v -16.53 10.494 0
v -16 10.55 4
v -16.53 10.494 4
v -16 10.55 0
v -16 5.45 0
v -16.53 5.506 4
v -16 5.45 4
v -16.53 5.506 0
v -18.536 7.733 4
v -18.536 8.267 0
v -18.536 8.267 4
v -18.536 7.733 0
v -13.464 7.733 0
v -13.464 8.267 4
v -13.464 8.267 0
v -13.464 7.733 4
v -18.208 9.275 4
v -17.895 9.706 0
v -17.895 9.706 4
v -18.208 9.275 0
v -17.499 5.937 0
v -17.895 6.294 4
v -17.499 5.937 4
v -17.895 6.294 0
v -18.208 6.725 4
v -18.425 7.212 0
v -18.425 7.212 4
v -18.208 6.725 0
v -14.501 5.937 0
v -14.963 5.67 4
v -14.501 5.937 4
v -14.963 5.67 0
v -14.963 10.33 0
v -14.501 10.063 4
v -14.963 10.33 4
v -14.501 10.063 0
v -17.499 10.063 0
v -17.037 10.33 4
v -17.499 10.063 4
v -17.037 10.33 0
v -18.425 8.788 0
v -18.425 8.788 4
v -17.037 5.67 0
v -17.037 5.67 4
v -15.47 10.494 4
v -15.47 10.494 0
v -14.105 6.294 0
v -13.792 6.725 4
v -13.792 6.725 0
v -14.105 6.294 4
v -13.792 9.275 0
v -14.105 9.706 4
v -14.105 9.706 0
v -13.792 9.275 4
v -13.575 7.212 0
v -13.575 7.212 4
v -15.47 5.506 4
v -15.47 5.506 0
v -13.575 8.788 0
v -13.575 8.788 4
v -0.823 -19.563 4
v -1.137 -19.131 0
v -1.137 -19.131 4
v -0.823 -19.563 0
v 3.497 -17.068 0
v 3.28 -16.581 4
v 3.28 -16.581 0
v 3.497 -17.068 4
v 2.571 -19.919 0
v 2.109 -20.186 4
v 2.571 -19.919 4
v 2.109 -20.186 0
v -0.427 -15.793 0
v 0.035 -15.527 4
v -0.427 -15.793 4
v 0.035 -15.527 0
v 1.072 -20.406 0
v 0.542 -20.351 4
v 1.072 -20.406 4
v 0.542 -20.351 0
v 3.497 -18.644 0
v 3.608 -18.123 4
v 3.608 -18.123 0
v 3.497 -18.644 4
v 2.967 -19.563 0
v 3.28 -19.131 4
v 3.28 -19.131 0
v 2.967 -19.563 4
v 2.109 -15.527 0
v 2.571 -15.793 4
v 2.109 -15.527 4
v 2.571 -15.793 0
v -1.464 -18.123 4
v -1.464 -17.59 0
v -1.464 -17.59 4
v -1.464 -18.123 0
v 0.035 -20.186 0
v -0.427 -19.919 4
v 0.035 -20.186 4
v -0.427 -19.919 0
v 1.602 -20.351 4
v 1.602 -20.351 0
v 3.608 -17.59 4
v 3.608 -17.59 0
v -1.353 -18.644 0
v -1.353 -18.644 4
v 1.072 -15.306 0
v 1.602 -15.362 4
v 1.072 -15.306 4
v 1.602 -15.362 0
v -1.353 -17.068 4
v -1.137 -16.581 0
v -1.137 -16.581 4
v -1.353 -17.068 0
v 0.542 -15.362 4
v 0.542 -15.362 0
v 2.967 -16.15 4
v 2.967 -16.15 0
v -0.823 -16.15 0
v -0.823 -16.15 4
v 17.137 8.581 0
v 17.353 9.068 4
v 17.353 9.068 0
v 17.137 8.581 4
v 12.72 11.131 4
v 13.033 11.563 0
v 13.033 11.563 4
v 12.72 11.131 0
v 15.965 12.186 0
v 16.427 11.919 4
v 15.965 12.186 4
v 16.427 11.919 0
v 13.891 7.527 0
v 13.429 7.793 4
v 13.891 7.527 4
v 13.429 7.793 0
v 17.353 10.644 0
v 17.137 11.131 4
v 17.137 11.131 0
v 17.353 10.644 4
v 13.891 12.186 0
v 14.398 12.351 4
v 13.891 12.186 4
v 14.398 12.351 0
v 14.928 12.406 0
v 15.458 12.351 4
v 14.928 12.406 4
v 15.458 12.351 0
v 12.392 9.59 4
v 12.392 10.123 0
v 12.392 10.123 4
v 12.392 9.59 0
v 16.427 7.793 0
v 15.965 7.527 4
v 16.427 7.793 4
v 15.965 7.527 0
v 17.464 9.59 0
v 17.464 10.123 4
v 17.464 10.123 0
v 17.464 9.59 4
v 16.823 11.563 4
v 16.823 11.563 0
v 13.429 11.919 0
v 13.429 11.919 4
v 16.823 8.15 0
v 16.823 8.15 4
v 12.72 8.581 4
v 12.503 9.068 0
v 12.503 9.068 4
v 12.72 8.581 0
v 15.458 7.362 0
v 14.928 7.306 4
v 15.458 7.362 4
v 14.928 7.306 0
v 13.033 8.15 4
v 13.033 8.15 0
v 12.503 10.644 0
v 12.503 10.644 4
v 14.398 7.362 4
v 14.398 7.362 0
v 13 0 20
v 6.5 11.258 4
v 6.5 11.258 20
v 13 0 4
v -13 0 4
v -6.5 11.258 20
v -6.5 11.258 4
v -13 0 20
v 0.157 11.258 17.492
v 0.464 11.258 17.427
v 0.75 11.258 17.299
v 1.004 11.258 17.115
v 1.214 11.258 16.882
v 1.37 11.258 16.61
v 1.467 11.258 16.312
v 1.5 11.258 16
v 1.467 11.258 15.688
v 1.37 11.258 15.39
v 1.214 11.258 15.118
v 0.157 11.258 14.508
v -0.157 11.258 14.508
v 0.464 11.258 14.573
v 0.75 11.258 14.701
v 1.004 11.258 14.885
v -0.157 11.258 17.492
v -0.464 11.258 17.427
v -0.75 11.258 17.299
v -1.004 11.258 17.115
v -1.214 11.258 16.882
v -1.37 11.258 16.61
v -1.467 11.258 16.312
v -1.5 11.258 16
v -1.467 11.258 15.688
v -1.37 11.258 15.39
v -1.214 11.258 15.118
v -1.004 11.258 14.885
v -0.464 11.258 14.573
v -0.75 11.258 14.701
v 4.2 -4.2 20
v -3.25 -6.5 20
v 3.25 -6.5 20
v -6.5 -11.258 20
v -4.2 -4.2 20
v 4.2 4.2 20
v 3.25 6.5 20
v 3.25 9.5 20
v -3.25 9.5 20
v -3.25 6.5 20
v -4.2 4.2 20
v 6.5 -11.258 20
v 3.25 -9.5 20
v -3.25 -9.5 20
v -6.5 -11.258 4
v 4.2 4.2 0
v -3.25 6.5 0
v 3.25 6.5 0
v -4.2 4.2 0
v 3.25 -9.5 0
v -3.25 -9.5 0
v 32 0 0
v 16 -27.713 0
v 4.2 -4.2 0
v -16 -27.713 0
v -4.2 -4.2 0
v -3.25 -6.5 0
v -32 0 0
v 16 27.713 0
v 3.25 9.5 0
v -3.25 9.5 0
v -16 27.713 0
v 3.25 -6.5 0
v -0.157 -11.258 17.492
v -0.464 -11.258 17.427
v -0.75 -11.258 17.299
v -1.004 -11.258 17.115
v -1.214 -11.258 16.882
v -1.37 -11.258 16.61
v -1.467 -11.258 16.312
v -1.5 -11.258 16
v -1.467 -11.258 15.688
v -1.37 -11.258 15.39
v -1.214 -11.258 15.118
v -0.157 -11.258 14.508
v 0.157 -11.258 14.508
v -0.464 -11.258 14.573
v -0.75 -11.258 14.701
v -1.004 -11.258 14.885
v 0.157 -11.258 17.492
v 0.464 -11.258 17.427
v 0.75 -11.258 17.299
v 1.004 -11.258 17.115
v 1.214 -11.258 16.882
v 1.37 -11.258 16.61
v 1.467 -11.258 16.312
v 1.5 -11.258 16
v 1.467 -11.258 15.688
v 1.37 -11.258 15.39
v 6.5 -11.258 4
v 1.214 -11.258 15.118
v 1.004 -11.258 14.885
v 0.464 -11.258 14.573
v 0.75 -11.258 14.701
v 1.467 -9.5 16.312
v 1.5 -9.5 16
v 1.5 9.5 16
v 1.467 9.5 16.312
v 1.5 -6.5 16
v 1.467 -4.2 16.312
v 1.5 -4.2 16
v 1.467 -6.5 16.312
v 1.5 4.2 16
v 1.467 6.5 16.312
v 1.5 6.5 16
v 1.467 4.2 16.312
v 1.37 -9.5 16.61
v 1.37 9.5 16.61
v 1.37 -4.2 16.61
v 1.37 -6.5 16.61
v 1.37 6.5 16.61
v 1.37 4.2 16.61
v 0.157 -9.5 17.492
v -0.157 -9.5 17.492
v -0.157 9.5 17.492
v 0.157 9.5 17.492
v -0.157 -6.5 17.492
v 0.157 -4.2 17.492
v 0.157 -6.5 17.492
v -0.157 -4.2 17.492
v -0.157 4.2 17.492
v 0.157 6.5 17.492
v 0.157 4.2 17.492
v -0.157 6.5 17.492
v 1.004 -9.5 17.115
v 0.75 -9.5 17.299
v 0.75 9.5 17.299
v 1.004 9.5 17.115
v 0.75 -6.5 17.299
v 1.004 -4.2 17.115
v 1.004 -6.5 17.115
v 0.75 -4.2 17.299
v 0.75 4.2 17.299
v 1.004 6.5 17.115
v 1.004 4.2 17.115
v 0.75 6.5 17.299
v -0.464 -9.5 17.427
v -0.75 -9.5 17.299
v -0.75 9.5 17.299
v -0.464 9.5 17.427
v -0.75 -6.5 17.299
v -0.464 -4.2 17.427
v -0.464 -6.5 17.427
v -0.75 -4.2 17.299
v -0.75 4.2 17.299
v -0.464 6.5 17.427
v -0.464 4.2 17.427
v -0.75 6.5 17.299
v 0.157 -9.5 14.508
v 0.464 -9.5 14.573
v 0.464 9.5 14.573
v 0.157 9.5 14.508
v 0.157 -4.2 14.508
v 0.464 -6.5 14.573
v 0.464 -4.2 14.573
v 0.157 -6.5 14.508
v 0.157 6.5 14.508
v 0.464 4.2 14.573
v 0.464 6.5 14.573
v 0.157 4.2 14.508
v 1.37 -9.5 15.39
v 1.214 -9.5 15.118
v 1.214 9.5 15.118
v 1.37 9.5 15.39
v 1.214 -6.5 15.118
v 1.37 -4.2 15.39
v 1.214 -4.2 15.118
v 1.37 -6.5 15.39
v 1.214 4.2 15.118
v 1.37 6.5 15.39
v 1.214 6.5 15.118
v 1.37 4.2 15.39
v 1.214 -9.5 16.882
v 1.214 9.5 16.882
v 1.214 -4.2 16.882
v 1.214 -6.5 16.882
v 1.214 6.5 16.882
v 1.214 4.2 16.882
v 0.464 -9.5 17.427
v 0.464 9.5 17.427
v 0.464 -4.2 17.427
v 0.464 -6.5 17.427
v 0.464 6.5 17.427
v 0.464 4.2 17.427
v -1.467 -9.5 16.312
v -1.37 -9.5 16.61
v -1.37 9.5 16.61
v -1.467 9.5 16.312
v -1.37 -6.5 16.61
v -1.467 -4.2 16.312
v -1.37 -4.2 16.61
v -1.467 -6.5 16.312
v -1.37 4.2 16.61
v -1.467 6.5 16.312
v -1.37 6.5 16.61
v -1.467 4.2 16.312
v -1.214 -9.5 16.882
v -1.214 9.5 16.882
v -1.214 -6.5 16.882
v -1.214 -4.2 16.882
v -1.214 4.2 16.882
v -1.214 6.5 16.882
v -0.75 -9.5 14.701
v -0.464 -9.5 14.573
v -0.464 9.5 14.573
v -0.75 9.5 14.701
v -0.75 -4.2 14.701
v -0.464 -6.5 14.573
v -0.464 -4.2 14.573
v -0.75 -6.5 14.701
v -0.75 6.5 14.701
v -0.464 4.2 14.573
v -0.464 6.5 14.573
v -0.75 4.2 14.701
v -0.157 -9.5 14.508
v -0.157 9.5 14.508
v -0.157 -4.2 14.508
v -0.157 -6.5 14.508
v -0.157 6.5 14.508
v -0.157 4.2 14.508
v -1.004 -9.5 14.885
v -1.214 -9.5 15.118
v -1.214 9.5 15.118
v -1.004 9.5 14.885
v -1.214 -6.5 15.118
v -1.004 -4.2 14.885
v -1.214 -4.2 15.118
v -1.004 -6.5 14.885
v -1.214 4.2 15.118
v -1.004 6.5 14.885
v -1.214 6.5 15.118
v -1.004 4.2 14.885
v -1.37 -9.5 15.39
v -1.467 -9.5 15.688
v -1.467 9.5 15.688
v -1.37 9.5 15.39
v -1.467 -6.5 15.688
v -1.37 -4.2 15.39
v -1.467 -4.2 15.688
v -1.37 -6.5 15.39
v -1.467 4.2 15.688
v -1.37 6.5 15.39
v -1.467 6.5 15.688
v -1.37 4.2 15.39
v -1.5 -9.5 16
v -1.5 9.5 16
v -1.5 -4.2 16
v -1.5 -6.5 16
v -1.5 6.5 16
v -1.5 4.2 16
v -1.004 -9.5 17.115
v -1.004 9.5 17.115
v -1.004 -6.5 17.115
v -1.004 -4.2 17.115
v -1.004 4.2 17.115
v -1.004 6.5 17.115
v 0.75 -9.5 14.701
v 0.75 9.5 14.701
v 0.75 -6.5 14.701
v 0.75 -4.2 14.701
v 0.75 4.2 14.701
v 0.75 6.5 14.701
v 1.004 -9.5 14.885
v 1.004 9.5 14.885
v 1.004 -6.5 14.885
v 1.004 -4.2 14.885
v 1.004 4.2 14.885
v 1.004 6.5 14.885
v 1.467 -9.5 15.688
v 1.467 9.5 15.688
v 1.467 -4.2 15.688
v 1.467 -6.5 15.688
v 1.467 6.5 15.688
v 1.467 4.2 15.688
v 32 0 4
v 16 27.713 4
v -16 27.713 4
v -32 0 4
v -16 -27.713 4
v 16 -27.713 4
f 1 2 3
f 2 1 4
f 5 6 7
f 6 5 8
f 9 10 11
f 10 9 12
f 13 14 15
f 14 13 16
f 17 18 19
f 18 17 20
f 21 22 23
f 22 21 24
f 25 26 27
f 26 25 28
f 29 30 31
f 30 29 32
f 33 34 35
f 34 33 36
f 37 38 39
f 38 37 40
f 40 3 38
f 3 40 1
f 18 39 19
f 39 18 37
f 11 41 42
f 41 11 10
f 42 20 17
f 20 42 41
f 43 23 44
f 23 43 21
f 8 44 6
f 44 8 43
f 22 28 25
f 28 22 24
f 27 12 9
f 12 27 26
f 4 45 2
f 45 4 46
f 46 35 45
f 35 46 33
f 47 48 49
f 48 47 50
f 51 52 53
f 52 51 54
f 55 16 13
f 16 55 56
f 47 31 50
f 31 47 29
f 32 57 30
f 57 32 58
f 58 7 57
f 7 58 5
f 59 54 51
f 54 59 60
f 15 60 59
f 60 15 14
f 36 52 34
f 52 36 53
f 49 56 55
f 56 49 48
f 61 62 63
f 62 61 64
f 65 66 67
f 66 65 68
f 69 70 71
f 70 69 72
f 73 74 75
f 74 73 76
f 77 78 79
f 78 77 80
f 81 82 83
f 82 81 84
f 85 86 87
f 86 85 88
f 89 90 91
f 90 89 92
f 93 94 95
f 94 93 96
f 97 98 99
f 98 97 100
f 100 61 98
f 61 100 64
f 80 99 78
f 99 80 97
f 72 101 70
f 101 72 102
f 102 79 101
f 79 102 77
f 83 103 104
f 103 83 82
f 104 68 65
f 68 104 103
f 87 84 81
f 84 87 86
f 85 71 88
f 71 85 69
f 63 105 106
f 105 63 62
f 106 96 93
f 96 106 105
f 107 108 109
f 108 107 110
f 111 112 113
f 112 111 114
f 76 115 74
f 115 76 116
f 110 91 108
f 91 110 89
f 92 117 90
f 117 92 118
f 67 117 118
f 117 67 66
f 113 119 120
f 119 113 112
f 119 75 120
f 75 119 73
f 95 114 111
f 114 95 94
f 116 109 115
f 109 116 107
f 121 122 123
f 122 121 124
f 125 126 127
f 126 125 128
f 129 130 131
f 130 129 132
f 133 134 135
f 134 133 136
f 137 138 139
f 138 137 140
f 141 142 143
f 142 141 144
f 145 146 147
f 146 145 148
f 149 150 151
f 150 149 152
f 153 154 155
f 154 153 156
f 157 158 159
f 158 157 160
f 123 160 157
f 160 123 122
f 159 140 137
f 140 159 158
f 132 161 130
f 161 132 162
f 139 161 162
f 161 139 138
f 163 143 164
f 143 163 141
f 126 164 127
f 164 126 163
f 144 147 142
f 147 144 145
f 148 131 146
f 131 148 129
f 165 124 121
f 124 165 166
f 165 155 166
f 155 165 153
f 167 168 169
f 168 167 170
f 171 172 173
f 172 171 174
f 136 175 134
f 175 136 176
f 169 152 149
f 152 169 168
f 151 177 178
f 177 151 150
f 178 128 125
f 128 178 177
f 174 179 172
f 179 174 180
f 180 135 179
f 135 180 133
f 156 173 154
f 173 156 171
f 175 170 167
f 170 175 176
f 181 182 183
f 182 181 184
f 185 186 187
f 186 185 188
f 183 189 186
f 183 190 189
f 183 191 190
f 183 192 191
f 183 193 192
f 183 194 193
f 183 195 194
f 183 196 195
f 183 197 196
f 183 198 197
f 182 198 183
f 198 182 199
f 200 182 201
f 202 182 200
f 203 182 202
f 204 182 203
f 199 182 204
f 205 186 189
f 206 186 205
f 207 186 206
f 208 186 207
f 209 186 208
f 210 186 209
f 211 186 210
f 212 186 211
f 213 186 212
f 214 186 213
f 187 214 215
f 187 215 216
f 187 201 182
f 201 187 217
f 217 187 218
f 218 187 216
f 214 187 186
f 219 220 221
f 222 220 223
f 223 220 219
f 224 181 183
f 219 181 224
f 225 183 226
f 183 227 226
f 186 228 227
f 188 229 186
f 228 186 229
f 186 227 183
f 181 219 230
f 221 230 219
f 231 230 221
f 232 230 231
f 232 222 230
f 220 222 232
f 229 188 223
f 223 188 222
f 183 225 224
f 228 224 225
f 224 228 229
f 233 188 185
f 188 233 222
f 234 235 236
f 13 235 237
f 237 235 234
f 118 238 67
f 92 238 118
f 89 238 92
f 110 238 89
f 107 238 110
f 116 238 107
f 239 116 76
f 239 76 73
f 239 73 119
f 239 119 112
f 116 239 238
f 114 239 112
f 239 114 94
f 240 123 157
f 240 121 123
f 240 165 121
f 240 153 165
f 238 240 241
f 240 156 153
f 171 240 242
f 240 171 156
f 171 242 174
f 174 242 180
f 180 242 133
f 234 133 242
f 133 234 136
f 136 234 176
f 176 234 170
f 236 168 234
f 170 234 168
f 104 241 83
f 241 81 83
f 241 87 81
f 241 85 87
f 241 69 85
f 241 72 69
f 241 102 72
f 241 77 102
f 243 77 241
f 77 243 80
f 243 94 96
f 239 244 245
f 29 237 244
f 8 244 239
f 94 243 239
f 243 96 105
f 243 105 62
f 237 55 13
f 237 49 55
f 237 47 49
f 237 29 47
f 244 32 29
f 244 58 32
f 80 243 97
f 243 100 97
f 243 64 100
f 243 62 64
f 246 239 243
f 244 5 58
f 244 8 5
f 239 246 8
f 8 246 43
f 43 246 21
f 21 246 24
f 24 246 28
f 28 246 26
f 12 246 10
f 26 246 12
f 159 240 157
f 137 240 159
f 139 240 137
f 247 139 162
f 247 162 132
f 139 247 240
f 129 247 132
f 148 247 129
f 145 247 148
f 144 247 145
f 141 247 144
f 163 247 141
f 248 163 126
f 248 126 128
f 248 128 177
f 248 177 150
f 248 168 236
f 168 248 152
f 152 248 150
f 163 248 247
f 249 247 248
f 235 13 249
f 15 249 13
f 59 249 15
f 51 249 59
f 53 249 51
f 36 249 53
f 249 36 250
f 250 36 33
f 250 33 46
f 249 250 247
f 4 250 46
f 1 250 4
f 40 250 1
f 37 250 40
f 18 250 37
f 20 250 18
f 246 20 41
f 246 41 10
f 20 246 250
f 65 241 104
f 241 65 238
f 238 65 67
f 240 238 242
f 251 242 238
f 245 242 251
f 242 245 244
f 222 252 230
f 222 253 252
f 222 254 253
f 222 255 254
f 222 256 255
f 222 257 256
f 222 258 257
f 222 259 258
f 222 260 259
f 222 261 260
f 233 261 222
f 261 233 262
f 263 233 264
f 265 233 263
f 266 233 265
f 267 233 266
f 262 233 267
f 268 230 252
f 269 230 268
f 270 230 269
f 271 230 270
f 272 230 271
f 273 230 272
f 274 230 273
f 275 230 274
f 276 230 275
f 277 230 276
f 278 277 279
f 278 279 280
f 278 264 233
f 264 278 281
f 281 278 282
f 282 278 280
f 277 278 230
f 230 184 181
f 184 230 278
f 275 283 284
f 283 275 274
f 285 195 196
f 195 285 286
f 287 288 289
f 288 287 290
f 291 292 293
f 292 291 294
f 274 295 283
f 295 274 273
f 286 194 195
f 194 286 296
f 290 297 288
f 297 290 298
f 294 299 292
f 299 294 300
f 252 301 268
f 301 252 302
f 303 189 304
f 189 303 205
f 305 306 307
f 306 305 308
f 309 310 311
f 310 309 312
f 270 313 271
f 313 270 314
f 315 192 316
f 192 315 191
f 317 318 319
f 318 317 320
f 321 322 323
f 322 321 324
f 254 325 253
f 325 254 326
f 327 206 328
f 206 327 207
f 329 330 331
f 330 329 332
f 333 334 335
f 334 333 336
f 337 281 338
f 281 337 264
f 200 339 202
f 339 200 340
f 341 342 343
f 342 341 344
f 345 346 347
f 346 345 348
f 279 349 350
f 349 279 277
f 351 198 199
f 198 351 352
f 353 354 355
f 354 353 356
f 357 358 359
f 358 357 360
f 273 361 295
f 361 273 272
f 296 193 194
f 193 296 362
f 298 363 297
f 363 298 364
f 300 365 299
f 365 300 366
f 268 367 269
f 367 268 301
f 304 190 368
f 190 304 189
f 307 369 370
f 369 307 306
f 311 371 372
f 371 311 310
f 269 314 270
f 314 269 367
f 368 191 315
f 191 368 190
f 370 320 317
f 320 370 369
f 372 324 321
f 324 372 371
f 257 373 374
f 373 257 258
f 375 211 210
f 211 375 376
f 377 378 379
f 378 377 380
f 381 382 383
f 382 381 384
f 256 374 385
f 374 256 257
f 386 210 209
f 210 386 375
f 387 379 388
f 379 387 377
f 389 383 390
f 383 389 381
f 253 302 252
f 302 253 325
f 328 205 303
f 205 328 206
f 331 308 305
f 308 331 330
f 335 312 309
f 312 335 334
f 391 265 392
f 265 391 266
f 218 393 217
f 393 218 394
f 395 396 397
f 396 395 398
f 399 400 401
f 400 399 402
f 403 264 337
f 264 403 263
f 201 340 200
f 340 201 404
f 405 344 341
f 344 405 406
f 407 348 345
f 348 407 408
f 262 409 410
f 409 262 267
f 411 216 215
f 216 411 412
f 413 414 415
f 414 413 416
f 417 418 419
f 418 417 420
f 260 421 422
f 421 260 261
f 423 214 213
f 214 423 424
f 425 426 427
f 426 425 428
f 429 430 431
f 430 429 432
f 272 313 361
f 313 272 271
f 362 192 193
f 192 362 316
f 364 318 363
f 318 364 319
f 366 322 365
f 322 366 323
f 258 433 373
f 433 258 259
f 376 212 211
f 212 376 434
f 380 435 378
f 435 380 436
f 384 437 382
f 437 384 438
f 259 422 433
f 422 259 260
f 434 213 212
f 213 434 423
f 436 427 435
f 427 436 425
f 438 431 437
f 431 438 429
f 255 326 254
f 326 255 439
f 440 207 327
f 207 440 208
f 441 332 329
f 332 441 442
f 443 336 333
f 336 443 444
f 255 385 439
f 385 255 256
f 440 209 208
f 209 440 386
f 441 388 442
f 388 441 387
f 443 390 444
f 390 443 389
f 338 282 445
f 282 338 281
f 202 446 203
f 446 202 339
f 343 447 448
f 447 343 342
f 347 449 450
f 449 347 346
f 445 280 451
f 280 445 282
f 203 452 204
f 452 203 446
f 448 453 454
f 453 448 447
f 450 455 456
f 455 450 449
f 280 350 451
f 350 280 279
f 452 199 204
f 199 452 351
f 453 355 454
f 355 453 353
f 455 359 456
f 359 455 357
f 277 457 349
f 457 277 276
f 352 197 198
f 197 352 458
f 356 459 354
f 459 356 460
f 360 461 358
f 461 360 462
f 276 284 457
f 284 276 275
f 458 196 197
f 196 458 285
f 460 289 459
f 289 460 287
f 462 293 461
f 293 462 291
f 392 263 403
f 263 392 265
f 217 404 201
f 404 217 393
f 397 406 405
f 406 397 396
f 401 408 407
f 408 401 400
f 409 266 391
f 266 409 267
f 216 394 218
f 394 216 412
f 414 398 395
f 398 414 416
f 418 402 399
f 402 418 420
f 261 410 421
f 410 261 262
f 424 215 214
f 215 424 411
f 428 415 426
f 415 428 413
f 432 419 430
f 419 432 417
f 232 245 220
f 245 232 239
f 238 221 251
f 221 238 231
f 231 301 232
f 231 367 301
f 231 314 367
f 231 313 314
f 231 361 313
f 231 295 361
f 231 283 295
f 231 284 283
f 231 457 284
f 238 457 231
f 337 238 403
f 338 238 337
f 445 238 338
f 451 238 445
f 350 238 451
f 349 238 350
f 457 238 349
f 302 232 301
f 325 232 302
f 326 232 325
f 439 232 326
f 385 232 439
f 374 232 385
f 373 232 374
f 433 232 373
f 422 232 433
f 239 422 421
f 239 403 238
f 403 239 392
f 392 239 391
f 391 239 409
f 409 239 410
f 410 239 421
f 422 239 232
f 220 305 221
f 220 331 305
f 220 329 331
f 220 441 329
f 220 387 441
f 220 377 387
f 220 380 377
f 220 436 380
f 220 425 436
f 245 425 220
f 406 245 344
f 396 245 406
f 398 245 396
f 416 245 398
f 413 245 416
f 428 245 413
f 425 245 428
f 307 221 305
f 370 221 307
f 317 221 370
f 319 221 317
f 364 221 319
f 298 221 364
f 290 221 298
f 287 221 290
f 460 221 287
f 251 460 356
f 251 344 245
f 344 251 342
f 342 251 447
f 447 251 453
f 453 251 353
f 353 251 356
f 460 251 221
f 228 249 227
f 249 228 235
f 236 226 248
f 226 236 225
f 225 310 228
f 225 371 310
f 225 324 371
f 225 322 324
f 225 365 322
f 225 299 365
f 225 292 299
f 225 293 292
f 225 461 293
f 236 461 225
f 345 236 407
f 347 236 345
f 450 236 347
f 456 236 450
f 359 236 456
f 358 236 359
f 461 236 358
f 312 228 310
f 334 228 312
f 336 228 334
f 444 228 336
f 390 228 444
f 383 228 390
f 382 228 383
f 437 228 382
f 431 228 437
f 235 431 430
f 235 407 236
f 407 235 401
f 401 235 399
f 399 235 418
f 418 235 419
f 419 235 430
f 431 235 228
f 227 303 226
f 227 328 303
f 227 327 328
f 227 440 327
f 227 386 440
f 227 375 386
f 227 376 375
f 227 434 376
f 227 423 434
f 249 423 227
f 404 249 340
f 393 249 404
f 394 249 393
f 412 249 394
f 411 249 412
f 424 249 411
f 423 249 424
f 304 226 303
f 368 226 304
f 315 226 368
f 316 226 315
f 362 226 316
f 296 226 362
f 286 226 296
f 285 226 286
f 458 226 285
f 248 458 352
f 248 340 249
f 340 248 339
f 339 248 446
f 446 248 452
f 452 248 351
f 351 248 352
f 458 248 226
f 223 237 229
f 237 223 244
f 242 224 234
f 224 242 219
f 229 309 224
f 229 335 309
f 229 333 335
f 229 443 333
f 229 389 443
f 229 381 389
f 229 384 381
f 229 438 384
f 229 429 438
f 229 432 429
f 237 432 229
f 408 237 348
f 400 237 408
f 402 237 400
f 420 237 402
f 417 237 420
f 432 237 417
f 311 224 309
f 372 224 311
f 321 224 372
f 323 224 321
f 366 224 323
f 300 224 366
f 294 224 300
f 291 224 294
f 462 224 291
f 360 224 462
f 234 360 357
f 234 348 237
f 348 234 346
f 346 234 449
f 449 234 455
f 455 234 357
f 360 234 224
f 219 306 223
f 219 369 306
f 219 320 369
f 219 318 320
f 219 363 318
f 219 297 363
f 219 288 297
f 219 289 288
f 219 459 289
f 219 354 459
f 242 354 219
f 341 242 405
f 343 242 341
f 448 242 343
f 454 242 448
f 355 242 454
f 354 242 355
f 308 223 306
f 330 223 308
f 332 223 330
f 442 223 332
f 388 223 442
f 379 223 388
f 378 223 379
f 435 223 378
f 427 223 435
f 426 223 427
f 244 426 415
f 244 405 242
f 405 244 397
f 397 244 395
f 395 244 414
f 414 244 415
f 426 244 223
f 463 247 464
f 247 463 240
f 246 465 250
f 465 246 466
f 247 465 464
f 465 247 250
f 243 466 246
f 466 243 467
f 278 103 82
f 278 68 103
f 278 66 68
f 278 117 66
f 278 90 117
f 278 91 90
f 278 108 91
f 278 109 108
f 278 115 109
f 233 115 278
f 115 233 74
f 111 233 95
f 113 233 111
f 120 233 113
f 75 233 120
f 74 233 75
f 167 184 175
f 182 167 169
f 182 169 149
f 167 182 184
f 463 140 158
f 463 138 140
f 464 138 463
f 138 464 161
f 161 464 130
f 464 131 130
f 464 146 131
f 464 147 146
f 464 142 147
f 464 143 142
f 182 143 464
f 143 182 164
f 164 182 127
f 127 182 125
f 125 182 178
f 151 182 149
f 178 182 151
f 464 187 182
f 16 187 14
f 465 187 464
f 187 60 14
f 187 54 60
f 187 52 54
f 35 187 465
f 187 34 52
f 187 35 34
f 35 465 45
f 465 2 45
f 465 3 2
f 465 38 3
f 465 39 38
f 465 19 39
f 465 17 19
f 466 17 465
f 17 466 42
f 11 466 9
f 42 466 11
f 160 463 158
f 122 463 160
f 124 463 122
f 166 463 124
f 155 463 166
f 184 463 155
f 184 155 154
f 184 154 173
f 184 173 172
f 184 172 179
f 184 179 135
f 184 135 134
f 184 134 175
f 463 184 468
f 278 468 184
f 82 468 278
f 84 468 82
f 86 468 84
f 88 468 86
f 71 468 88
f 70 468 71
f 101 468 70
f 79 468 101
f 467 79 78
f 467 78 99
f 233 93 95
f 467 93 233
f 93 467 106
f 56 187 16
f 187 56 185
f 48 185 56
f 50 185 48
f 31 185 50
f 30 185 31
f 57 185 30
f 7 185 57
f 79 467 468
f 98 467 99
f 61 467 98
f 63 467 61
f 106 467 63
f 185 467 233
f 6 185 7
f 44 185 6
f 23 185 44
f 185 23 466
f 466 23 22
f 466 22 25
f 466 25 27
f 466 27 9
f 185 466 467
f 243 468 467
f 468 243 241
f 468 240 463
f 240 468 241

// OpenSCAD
beam_width    = 8;
hole_diameter = 5.1;
hole_radius   = hole_diameter / 2;

plate_radius = beam_width * 4;
distance_of_edge_from_center = sqrt(pow(plate_radius,2)-pow(plate_radius/2,2));

module beam_holes(number_of_holes, step=8) {
    beam_length = number_of_holes * 8;
    // Cut the holes
    for (x=[4 : step : beam_length]) {
        translate([x-4,0,2])
        cylinder(r=2.55, h=12, $fn=30);
    }
}

union(){

    difference(){
        cylinder(r=13, h=20, $fn=6);

        translate([0,20,16])
        rotate([90,0,0])
        cylinder(r=1.5, h=40, $fn=30);

        translate([0,-8,0])
        cube([6.5,3,60], center=true);

        translate([0,8,0])
        cube([6.5,3,60], center=true);

        translate([-4.2,-4.2,-12])
        cube([8.4,8.4,50]);
    }

    difference(){
        // Base plate
        cylinder(r=plate_radius, h=4, $fn=6);

        rotate(90)
        translate([0,0,-5])
        center_connectors();

        translate([0,-8,0])
        cube([6.5,3,60], center=true);

        translate([0,8,0])
        cube([6.5,3,60], center=true);

        translate([-4.2,-4.2,-12])
        cube([8.4,8.4,50]);
    }
}


module center_connectors() {
    translate([8,16,0])
    rotate(a=0)
    beam_holes(10,step=8*8);

    rotate(a=120)
    translate([8,16,0])
    beam_holes(10,step=8*8);

    rotate(a=240)
    translate([8,16,0])
    beam_holes(10,step=8*8);
}
